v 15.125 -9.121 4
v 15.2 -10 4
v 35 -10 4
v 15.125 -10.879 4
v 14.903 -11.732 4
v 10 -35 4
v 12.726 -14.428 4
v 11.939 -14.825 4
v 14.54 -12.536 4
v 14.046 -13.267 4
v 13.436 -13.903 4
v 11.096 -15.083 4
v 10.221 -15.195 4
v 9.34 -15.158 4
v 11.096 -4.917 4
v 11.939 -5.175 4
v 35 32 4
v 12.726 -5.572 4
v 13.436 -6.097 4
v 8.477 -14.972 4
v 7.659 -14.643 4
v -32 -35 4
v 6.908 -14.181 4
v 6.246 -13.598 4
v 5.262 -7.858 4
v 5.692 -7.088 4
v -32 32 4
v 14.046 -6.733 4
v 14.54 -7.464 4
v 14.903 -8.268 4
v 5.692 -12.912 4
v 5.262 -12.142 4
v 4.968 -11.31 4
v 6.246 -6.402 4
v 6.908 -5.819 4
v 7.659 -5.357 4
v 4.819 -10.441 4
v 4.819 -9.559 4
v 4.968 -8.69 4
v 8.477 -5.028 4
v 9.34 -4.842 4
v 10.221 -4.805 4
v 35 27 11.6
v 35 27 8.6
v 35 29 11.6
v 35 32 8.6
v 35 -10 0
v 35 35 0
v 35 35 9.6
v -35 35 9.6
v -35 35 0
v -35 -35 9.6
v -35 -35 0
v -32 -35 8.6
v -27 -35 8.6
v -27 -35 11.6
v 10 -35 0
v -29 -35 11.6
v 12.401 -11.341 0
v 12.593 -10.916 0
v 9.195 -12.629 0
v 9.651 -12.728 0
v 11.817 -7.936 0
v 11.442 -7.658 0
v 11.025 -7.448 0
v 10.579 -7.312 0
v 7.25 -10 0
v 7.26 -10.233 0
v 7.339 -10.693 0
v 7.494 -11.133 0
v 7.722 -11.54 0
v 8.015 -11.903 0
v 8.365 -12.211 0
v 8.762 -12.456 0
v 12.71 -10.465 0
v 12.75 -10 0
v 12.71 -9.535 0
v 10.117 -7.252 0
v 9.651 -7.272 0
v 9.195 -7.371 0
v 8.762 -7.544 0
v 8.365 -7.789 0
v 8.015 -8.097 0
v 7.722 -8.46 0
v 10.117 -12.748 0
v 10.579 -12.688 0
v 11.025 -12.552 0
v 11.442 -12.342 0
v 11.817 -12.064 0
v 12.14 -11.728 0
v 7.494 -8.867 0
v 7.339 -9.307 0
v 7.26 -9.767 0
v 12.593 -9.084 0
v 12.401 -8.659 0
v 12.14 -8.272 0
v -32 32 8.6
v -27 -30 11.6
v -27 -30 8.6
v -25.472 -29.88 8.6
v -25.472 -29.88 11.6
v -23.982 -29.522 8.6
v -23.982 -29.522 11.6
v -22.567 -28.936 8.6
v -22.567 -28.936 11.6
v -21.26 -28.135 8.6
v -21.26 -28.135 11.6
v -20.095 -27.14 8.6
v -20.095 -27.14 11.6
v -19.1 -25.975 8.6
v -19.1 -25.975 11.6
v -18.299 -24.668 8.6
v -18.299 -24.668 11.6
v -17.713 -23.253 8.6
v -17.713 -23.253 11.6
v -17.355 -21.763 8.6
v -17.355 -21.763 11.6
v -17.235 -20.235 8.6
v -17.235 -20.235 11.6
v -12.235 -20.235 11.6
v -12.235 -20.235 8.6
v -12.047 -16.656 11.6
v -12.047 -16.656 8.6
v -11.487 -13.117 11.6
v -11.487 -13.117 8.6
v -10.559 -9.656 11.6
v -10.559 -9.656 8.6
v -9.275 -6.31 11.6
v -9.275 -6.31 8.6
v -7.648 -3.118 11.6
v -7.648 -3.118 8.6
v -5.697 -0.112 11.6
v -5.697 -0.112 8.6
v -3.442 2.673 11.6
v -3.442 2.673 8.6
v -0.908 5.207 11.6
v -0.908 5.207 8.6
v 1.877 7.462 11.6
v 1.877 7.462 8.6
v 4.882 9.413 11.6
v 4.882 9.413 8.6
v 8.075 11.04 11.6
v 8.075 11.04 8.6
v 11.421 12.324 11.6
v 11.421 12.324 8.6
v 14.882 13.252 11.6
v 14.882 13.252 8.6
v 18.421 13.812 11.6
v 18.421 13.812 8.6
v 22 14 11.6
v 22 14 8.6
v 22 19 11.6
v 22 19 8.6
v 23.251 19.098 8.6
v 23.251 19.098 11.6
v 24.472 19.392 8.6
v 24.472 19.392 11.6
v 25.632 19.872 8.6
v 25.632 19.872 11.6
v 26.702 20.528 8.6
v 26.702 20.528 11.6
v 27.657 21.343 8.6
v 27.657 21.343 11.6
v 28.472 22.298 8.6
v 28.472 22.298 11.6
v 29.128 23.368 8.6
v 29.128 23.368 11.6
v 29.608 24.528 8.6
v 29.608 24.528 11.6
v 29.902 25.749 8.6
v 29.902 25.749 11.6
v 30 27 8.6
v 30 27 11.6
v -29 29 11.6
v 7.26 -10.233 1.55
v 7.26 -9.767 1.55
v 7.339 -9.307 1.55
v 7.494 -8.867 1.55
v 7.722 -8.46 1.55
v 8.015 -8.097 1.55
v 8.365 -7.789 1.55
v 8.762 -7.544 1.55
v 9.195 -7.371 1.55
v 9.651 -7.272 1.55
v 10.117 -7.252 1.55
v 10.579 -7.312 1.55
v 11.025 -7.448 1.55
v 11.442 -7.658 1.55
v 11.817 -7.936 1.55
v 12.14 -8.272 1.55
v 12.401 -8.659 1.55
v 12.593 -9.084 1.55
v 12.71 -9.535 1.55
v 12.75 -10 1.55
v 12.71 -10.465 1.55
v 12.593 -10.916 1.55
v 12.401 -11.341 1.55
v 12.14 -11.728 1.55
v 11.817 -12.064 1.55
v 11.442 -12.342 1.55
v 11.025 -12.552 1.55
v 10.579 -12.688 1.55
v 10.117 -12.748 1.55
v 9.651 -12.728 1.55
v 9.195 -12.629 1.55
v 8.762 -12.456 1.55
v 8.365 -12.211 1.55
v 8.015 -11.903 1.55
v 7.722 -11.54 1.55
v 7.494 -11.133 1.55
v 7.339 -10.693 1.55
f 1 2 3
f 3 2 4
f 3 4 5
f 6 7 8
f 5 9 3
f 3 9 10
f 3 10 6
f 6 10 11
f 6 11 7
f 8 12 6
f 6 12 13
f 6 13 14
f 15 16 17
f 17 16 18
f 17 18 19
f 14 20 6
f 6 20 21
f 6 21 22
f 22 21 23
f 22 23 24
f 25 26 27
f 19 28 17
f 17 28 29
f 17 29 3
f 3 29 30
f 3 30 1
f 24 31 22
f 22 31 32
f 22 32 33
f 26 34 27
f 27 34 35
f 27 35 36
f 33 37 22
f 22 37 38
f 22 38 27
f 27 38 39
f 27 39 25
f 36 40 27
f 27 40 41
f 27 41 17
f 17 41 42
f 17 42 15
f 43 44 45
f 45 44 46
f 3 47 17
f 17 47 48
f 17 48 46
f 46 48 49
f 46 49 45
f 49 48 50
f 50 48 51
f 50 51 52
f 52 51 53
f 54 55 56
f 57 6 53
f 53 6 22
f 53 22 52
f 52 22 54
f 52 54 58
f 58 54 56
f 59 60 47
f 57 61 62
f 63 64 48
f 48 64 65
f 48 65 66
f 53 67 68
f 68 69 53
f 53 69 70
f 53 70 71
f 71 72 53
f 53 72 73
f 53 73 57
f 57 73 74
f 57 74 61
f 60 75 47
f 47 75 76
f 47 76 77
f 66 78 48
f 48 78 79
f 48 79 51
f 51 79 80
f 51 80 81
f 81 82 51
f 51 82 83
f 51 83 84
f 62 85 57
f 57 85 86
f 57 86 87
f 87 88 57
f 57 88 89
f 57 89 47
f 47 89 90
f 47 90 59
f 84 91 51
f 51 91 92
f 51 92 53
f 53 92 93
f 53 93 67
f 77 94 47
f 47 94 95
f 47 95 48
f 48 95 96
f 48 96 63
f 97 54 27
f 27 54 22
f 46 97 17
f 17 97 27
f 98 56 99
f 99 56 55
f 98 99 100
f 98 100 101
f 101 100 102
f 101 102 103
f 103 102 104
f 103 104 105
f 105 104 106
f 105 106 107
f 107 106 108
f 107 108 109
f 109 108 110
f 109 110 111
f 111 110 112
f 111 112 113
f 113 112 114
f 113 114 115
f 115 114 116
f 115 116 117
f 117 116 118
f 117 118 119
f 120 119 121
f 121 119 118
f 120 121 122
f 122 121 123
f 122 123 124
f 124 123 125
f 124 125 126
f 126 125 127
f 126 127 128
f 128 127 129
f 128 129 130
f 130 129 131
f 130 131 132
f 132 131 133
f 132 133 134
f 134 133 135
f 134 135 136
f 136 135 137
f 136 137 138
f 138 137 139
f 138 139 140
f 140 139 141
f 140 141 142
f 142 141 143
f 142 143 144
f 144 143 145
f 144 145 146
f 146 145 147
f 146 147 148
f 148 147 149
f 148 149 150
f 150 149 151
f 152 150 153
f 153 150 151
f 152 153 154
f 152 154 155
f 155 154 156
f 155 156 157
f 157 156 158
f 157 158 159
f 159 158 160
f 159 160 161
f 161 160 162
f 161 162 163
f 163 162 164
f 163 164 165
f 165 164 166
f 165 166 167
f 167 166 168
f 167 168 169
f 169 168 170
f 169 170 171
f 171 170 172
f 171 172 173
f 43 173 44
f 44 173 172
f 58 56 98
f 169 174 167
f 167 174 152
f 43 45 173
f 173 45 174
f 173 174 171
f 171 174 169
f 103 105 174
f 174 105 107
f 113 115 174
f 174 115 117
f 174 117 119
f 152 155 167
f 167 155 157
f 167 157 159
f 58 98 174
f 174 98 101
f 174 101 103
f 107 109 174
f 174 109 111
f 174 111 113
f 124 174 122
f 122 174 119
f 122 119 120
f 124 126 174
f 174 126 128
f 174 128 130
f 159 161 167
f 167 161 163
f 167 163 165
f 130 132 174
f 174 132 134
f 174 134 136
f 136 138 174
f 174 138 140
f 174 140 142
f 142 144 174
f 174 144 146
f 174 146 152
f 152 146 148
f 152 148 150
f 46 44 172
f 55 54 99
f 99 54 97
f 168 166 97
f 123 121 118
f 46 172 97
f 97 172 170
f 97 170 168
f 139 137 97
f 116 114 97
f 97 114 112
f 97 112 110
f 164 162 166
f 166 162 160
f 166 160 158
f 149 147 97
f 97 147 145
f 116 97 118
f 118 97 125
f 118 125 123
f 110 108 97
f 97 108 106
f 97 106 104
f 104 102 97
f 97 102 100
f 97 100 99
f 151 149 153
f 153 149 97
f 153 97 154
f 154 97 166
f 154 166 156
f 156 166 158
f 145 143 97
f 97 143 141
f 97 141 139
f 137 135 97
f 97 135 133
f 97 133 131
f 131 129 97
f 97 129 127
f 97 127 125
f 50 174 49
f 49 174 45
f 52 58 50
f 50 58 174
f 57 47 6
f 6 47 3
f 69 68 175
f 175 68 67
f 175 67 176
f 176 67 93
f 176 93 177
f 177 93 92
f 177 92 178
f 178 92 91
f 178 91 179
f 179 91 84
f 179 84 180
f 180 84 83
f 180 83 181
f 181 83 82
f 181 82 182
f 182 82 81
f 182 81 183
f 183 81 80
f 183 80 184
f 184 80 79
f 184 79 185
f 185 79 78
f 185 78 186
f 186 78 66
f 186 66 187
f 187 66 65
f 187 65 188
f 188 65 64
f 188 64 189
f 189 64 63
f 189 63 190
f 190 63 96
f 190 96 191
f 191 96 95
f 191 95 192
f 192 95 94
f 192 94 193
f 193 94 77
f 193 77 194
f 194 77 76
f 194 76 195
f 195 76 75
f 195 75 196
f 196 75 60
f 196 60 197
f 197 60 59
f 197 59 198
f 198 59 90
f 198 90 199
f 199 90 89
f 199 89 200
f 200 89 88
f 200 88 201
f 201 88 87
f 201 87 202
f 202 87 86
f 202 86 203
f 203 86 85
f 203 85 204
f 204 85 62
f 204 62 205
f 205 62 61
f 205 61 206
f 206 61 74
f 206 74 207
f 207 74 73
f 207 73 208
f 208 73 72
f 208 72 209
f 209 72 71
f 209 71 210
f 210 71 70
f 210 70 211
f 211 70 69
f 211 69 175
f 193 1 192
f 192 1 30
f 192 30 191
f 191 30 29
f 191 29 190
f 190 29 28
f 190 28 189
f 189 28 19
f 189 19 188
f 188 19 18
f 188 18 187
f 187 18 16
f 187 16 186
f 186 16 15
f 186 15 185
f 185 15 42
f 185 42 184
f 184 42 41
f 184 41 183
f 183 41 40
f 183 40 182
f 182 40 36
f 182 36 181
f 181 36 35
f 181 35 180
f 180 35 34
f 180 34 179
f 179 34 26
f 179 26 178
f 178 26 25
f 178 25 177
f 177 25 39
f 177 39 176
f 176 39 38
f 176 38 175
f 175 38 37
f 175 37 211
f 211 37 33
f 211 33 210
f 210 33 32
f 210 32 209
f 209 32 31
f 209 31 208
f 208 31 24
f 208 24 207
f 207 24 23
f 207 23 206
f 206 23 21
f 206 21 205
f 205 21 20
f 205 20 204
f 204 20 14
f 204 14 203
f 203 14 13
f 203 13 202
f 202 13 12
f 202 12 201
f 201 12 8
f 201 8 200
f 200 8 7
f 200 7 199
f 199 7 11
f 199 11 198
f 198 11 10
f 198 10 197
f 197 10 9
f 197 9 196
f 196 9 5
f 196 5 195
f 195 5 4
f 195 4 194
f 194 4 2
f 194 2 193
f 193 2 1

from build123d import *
from OCP.BRepFilletAPI import BRepFilletAPI_MakeChamfer

# Parameters (mm, degrees)
ESQUISSE1_W        = 70
ESQUISSE1_H        = 70
BOSS_EXTRU_1_DEPTH = 4
BOSS_EXTRU_2_DEPTH = 4.6
BOSS_EXTRU_3_DEPTH = 3
CHANFREIN1_SIZE    = 2
CHANFREIN1_SIZE2   = 6
CHANFREIN2_SIZE    = 25


with BuildPart() as part:
    # Esquisse1 → Boss.-Extru.1 (new body)
    with BuildSketch(Plane.XY):
        Rectangle(ESQUISSE1_W, ESQUISSE1_H)
    extrude(amount=BOSS_EXTRU_1_DEPTH)

    # Esquisse2 → Boss.-Extru.2 (add)
    with BuildSketch(Plane.XY.offset(4)):
        Polygon((-35, 35), (-35, -35), (-32, -35), (-32, 32), (35, 32), (35, 35), align=None)
    extrude(amount=BOSS_EXTRU_2_DEPTH)

    # Esquisse3 → Boss.-Extru.3 (add)
    with BuildSketch(Plane.XY.offset(8.6)):
        with BuildLine():
            Line((35, 35), (-35, 35))
            Line((-35, 35), (-35, -35))
            Line((-35, -35), (-27, -35))
            Line((-27, -35), (-27, -30))
            ThreePointArc((-27, -30), (-20.095113441, -27.13990234), (-17.235015781, -20.235015781))
            Line((-17.235015781, -20.235015781), (-12.235015781, -20.235015781))
            ThreePointArc((-12.235015781, -20.235015781), (-2.207811813, 3.972796032), (22, 14))
            Line((22, 14), (22, 19))
            ThreePointArc((22, 19), (27.656854249, 21.343145751), (30, 27))
            Line((30, 27), (35, 27))
            Line((35, 27), (35, 35))
        make_face()
    extrude(amount=BOSS_EXTRU_3_DEPTH)

    # Chanfrein1: one chamfer whose edges measure the first distance from different faces: ONE call of the kernel's chamfer builder (chamfer() names one face for all edges)
    chanfrein1_edges_1 = [part.edges().sort_by_distance(p)[0] for p in [
        (0, 35, 11.6),
    ]]
    chanfrein1_side_1 = [part.faces().sort_by_distance(p)[0] for p in [
        (0, 35, 5.8),
    ]]
    chanfrein1_edges_2 = [part.edges().sort_by_distance(p)[0] for p in [
        (-35, 0, 11.6),
    ]]
    chanfrein1_side_2 = [part.faces().sort_by_distance(p)[0] for p in [
        (-35, 0, 5.8),
    ]]
    chanfrein1 = BRepFilletAPI_MakeChamfer(part.part.solid().wrapped)
    for e in chanfrein1_edges_1:
        chanfrein1.Add(CHANFREIN1_SIZE, CHANFREIN1_SIZE2, e.wrapped, chanfrein1_side_1[0].wrapped)  # the first distance lies on this face
    for e in chanfrein1_edges_2:
        chanfrein1.Add(CHANFREIN1_SIZE, CHANFREIN1_SIZE2, e.wrapped, chanfrein1_side_2[0].wrapped)  # the first distance lies on this face
    add(Compound.cast(chanfrein1.Shape()), mode=Mode.REPLACE)

    # Chanfrein2
    chanfrein2_edges = [part.edges().sort_by_distance(p)[0] for p in [
        (35, -35, 2),
    ]]
    chamfer(chanfrein2_edges, length=CHANFREIN2_SIZE)

    # Esquisse4 → Fraisage pour vis à tête fraisée M51 (revolve, cut)
    with BuildSketch(Plane(origin=(10, -10, 4), x_dir=(0, -1, 0), z_dir=(1, 0, 0))):
        Polygon((0, 0), (0, 4), (2.75, 4), (2.75, 2.45), (5.2, 0), align=None)
    revolve(axis=Axis((10, -10, 10.35), (0, 0, -1)), mode=Mode.SUBTRACT)


solid = part.part
